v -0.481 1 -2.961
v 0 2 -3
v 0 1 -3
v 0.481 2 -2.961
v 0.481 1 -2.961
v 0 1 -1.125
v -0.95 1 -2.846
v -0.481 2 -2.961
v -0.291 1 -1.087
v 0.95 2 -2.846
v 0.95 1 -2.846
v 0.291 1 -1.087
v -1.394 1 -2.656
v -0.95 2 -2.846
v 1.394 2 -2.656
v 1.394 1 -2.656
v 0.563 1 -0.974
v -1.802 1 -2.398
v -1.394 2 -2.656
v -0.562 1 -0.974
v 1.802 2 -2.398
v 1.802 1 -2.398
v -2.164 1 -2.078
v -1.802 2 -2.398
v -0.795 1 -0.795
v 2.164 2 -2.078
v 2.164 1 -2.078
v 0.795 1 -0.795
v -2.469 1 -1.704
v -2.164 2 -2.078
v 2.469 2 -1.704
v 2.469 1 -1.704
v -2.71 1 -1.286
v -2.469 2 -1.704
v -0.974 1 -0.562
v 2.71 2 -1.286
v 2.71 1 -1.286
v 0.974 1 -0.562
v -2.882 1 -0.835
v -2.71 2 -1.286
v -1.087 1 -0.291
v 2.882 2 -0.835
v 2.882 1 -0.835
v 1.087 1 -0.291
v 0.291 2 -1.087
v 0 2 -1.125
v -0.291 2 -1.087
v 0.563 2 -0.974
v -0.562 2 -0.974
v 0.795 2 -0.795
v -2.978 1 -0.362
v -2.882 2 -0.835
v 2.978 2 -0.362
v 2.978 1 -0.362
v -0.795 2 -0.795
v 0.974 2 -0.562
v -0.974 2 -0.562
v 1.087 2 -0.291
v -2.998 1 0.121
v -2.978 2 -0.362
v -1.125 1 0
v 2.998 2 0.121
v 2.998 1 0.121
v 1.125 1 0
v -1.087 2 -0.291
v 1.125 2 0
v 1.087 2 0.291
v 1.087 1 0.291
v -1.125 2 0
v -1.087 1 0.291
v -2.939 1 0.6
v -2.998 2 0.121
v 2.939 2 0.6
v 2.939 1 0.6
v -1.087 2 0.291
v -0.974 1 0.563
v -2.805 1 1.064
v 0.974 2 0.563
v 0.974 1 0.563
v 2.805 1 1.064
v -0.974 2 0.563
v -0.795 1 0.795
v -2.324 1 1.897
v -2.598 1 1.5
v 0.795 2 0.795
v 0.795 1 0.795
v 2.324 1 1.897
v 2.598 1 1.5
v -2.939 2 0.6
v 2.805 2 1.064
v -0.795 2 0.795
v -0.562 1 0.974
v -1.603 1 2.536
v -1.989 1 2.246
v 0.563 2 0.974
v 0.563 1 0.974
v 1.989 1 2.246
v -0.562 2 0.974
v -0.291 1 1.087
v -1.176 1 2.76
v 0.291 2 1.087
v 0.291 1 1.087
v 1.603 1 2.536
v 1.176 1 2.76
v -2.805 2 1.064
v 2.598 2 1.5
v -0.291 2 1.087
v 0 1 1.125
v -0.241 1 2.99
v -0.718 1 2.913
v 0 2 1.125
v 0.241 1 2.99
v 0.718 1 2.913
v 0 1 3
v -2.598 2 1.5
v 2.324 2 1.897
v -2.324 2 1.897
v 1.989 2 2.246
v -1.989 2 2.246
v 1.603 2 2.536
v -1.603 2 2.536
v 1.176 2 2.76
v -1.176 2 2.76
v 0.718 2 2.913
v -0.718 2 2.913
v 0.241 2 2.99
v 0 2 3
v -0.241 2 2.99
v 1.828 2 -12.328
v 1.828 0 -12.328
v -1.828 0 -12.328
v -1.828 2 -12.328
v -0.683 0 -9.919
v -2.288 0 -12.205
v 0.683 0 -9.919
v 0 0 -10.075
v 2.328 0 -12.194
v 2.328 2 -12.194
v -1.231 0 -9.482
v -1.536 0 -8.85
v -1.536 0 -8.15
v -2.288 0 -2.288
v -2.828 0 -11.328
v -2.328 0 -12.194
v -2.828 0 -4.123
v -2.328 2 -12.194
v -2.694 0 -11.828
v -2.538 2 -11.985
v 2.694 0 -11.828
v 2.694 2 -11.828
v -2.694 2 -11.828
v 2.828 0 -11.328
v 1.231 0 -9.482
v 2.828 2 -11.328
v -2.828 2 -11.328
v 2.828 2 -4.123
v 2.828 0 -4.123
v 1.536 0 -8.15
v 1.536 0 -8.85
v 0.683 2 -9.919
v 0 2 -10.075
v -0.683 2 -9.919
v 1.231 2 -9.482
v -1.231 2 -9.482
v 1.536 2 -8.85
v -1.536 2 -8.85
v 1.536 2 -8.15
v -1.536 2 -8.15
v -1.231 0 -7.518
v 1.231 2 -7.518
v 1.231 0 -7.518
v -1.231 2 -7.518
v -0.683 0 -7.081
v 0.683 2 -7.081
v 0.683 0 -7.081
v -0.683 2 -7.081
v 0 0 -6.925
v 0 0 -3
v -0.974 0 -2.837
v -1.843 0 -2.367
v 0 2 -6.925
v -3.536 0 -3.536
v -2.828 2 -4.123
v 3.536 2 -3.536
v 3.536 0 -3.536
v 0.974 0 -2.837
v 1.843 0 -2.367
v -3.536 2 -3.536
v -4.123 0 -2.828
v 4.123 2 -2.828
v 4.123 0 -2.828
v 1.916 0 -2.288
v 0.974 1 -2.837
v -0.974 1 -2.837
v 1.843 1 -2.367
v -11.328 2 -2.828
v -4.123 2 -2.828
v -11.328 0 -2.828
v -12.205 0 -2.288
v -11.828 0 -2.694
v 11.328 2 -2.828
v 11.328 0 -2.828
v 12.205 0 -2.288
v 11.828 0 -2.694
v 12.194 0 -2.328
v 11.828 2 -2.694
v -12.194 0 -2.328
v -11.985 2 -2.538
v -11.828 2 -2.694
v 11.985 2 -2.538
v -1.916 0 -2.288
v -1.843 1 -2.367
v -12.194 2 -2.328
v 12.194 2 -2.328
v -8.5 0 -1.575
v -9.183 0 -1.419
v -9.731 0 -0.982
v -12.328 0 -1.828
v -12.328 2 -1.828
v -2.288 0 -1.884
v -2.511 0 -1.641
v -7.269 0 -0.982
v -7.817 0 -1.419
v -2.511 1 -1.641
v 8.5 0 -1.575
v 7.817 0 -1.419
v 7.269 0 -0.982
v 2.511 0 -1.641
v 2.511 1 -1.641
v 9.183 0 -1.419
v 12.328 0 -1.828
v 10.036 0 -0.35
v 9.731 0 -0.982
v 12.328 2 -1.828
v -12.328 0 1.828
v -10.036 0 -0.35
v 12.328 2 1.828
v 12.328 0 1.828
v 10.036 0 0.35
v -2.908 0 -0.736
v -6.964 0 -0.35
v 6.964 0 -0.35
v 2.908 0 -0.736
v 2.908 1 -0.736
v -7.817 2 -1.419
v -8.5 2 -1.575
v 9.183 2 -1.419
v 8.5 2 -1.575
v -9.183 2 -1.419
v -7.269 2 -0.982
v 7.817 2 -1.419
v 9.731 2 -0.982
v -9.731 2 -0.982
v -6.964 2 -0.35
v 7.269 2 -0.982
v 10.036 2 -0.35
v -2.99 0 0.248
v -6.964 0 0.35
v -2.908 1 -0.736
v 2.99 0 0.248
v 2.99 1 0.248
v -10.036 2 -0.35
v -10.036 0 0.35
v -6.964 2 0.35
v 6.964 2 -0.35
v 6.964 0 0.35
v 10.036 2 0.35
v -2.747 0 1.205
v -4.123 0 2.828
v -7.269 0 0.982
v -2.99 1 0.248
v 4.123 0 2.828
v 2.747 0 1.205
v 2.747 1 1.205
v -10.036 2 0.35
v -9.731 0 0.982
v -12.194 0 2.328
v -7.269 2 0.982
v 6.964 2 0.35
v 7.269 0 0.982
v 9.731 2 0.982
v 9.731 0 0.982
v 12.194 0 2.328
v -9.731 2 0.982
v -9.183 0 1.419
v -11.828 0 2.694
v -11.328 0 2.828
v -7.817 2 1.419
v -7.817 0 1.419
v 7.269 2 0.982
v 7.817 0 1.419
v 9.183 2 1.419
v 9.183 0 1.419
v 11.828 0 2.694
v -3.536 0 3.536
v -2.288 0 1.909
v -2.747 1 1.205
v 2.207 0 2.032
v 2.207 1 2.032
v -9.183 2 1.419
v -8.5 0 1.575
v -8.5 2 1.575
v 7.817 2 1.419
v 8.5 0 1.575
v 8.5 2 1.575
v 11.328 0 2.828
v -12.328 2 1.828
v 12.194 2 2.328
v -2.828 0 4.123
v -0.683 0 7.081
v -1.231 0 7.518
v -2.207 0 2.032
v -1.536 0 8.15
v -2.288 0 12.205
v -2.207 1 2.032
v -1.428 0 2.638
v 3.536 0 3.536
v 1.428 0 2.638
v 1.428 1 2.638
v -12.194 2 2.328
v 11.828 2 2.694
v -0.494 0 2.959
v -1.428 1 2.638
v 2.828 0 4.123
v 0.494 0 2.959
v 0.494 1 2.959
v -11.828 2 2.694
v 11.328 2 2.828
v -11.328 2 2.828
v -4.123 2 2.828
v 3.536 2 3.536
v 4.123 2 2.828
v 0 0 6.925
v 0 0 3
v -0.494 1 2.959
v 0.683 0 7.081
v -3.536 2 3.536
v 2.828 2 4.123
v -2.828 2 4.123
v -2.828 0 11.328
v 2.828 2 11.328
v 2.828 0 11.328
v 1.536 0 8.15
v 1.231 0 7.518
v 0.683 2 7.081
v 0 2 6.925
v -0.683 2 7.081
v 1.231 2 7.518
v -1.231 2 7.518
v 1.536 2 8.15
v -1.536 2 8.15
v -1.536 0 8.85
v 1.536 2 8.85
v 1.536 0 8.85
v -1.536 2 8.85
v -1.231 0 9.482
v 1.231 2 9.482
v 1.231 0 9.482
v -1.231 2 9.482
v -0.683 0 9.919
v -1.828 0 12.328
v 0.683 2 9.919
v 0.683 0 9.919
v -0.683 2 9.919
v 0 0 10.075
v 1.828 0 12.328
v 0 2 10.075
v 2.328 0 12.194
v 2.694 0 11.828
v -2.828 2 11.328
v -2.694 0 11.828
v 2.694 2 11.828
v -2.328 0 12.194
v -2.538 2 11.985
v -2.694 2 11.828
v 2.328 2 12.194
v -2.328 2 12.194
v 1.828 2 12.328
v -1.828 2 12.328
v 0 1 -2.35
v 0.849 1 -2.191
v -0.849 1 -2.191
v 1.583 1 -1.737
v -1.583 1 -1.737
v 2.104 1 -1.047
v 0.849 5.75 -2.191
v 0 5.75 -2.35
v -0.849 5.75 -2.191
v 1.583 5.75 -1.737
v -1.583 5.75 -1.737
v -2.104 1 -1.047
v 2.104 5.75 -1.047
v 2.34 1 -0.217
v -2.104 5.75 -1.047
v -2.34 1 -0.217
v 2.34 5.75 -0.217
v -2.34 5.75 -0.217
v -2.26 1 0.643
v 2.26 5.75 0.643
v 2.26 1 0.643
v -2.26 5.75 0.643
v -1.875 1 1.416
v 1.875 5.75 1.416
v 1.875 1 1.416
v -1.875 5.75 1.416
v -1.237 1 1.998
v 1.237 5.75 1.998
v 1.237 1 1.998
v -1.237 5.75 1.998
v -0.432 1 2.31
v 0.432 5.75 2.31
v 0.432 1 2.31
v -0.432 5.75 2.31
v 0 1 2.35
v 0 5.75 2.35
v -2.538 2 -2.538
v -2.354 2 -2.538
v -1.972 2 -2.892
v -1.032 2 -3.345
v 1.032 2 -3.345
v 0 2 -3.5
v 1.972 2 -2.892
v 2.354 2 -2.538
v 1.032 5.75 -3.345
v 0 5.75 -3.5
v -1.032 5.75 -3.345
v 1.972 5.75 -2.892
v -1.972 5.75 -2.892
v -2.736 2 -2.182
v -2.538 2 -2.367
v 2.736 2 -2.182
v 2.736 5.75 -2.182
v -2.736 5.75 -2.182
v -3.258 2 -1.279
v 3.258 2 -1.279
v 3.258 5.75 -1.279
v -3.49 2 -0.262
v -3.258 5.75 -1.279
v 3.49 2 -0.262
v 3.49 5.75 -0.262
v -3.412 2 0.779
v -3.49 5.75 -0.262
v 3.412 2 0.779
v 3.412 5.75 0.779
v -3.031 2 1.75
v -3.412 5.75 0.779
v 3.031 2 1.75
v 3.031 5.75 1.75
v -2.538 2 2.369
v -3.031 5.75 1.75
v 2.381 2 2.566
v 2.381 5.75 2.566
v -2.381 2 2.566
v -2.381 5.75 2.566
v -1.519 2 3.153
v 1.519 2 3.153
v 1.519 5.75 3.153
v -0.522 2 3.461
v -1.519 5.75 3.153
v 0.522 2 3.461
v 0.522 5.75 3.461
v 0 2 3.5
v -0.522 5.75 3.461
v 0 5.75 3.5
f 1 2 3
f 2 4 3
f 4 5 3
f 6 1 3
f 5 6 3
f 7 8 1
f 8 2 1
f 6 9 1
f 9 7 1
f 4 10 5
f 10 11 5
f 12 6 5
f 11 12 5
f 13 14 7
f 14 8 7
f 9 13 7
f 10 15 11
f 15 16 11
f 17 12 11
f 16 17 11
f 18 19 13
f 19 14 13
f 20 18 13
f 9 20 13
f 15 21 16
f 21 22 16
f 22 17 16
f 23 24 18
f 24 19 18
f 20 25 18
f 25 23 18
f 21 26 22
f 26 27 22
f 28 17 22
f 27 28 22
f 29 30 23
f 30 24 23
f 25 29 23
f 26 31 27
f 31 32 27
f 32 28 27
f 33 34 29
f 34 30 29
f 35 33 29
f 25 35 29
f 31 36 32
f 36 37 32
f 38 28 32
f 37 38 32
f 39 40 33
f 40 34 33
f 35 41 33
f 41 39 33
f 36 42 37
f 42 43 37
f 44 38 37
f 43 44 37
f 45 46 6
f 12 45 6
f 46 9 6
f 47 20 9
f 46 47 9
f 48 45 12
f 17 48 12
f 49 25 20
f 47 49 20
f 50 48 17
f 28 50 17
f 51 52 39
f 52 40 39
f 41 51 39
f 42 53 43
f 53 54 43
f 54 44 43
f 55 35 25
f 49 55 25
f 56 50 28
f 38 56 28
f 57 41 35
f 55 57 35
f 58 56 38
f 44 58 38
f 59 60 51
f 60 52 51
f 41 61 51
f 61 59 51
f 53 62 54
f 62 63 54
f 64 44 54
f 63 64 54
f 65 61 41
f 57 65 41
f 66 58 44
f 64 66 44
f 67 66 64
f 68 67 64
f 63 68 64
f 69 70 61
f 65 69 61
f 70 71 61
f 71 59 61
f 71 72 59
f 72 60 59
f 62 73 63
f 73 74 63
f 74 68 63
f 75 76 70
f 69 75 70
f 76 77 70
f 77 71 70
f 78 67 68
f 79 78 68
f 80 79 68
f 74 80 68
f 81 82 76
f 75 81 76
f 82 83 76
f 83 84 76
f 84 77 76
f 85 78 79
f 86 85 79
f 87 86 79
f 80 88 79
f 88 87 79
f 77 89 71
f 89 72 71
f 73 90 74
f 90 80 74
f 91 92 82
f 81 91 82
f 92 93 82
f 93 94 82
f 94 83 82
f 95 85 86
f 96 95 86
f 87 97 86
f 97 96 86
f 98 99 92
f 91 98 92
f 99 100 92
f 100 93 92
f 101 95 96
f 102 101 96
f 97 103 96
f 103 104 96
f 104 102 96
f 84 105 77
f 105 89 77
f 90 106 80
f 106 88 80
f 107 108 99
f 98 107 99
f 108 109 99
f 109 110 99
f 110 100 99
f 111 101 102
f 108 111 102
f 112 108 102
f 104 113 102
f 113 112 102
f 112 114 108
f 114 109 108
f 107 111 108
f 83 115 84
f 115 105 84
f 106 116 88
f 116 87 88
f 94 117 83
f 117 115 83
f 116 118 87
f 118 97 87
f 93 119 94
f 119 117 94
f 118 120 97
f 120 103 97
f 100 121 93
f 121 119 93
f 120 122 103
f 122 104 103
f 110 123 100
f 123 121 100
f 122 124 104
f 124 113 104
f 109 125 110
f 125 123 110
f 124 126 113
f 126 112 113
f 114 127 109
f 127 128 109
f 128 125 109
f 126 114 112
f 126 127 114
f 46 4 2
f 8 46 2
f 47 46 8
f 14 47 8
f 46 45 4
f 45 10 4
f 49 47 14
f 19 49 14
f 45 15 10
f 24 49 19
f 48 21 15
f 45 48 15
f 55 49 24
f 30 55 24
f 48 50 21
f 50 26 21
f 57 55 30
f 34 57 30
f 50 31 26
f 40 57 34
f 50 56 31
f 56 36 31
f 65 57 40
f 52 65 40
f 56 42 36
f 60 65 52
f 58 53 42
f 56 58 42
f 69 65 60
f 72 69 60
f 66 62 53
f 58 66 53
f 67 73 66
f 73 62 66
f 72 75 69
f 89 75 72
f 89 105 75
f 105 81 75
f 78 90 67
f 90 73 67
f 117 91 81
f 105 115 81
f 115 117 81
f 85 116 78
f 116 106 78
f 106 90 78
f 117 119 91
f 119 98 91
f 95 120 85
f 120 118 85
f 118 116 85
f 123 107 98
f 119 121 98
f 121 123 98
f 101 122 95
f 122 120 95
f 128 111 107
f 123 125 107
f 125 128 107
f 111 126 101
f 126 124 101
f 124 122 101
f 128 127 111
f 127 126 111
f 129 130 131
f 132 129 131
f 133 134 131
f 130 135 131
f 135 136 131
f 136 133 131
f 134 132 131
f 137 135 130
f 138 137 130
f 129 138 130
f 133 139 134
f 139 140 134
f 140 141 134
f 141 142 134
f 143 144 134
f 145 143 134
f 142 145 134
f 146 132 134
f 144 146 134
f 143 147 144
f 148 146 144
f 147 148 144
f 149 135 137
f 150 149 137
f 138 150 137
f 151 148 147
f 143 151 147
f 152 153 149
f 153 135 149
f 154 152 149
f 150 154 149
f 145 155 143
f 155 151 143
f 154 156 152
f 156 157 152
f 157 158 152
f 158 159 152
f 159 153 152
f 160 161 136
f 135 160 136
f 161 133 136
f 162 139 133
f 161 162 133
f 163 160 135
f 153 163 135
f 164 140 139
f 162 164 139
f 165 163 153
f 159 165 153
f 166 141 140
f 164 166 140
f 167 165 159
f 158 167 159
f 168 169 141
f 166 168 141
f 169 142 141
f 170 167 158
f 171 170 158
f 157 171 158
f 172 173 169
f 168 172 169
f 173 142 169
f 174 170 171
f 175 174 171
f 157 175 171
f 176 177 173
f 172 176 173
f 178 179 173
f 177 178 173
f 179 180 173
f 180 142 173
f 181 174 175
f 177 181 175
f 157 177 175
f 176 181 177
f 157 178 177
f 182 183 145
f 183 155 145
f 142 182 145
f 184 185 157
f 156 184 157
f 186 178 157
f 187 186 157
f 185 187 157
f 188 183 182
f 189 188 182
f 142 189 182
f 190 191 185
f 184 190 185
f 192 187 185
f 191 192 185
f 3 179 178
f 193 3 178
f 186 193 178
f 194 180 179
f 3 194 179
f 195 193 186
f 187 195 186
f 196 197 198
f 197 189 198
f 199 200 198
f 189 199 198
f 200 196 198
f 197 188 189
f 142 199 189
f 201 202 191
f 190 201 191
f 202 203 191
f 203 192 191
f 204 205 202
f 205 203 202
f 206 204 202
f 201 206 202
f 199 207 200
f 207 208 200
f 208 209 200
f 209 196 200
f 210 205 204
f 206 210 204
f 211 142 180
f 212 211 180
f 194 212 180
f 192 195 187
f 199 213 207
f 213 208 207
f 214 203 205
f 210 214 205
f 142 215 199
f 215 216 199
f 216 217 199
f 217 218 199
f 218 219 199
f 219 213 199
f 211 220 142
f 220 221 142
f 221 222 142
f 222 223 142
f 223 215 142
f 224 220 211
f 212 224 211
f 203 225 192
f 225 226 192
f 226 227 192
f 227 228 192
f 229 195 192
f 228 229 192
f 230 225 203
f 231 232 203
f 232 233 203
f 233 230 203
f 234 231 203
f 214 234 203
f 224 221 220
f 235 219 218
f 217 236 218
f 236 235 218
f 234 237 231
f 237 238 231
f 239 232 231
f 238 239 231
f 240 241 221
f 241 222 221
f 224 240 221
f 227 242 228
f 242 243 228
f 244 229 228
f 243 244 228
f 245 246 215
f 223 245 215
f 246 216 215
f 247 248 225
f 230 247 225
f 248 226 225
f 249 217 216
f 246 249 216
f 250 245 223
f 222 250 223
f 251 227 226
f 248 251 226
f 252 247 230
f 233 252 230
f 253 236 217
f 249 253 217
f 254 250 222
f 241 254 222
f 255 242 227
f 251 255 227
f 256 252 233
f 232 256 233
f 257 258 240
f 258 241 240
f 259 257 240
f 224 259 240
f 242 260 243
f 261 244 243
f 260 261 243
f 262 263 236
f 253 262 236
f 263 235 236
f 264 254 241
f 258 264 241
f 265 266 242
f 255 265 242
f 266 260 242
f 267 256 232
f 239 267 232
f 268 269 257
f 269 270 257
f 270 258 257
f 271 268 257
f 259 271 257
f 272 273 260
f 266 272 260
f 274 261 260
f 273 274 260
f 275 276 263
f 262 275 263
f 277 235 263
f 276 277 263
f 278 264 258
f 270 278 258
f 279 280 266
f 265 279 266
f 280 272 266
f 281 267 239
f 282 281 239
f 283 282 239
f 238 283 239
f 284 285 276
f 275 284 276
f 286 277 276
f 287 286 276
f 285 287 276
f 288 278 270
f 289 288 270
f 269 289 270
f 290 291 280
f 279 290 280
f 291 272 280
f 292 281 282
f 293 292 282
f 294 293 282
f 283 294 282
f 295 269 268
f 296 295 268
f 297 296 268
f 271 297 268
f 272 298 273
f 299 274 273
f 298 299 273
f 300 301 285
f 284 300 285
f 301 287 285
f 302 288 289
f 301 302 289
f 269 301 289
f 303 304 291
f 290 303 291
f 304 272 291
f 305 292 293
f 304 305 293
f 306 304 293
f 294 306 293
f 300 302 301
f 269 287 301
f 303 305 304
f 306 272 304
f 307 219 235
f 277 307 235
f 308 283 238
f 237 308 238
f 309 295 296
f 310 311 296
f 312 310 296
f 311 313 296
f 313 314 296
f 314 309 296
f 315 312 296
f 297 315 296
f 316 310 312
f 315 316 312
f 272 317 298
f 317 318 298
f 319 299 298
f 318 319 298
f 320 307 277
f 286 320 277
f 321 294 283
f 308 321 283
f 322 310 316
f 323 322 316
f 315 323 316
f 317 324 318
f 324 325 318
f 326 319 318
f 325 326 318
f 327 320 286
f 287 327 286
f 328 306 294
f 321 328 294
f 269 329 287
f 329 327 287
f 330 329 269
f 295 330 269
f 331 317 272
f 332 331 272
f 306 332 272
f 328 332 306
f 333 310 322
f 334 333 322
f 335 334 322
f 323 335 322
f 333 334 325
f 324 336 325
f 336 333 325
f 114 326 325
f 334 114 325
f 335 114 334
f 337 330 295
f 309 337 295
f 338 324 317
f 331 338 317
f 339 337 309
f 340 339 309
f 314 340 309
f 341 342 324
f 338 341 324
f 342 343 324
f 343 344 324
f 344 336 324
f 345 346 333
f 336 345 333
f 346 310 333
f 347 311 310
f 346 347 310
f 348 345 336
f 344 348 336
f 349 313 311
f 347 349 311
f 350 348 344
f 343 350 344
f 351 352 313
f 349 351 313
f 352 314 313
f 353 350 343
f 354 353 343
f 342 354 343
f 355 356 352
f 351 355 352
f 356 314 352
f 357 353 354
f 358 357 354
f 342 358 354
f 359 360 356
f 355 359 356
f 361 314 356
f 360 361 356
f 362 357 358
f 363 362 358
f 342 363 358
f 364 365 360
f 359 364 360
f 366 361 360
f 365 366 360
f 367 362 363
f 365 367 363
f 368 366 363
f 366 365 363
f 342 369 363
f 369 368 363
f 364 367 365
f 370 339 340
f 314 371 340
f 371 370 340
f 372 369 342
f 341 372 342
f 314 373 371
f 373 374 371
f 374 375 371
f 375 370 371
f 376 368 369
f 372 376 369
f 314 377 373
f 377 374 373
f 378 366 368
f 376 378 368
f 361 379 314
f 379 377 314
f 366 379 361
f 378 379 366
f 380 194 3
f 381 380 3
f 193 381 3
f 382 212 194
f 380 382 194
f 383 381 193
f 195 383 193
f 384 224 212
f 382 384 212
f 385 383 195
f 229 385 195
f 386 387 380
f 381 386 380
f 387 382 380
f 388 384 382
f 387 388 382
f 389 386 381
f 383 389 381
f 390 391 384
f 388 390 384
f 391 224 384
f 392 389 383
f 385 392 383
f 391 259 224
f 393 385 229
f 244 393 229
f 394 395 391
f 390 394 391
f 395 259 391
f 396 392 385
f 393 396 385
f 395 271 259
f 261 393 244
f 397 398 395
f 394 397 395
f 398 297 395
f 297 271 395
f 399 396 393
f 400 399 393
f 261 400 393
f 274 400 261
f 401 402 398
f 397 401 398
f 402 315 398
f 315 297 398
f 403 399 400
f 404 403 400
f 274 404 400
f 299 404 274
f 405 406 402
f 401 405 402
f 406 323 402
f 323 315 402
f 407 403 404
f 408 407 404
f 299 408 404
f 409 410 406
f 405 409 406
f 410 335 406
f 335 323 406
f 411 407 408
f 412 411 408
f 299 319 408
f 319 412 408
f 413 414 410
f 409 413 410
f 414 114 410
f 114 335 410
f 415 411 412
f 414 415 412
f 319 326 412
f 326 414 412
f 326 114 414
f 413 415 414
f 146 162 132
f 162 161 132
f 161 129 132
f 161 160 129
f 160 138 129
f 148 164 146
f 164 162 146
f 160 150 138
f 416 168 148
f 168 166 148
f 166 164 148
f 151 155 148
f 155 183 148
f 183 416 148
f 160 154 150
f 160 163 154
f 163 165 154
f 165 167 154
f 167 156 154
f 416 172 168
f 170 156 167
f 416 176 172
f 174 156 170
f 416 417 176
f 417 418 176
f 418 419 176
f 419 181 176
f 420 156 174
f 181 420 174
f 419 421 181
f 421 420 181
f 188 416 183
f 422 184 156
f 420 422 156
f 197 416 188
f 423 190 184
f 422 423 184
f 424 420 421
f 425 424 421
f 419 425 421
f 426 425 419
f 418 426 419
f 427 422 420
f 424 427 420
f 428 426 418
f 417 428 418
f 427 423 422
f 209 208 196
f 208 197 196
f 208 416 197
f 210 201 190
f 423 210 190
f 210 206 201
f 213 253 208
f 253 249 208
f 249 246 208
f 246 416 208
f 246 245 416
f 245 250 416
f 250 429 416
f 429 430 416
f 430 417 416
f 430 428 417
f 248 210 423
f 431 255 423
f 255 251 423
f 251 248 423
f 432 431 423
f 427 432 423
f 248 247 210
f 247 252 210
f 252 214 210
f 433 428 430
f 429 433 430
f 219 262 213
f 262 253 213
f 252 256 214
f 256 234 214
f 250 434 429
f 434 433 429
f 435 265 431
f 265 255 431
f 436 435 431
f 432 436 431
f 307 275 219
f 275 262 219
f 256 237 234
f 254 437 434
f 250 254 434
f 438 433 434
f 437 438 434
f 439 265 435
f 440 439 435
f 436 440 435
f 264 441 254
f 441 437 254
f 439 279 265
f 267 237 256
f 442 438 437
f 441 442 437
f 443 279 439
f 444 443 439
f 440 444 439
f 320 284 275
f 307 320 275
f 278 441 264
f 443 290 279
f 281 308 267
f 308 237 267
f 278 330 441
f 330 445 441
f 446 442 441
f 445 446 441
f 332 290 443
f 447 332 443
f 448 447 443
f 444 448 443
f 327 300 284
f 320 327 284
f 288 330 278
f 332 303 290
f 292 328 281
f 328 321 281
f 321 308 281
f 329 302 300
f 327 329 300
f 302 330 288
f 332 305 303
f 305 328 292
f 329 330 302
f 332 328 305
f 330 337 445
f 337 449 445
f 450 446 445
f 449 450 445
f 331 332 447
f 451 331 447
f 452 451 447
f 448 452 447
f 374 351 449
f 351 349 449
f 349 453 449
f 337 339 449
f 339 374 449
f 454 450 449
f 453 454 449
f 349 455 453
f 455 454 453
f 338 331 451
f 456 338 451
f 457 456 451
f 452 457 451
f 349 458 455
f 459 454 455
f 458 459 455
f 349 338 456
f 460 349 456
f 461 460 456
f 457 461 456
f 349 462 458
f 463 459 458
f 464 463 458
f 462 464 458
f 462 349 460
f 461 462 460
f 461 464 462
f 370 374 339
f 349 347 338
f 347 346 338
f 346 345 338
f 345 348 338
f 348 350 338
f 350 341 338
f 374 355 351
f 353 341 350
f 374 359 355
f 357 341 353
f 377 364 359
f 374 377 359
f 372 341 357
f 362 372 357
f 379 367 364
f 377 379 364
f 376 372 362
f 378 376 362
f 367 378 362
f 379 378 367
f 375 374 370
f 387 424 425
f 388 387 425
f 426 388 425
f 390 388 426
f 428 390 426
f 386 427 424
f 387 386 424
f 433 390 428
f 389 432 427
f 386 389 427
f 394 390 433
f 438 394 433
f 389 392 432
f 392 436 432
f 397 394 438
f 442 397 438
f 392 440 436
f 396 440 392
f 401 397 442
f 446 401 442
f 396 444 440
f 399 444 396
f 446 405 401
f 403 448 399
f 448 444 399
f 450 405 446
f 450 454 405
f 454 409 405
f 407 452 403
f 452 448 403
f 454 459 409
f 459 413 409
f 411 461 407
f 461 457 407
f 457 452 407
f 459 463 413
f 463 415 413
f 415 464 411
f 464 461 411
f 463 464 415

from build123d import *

# Parameters (mm, degrees)
SKETCH1_R             = 1.575
SKETCH1_R_2           = 3.5
BOSS_EXTRUDE1_DEPTH   = 2
SKETCH1_R_3           = 3
SKETCH1_R_4           = 1.125
BOSS_EXTRUDE1_2_DEPTH = 2
SKETCH1_3_R           = 3.5
SKETCH1_3_R_2         = 2.35
BOSS_EXTRUDE2_DEPTH   = 5.75
FILLET1_R             = 1
CUT_EXTRUDE1_DEPTH    = 1


with BuildPart() as part:
    # Sketch1 → Boss-Extrude1 (new body)
    with BuildSketch(Plane(origin=(0, 0, 0), x_dir=(1, 0, 0), z_dir=(0, 1, 0))):
        with BuildLine():
            ThreePointArc((-2.828427125, 4.123105626), (-3.535533906, 3.535533906), (-4.123105626, 2.828427125))
            Line((-4.123105626, 2.828427125), (-12.328427125, 2.828427125))
            Line((-12.328427125, 2.828427125), (-12.328427125, -2.828427125))
            Line((-12.328427125, -2.828427125), (-4.123105626, -2.828427125))
            ThreePointArc((-4.123105626, -2.828427125), (-3.535533906, -3.535533906), (-2.828427125, -4.123105626))
            Line((-2.828427125, -4.123105626), (-2.828427125, -12.328427125))
            Line((-2.828427125, -12.328427125), (2.828427125, -12.328427125))
            Line((2.828427125, -12.328427125), (2.828427125, -4.123105626))
            ThreePointArc((2.828427125, -4.123105626), (3.535533906, -3.535533906), (4.123105626, -2.828427125))
            Line((4.123105626, -2.828427125), (12.328427125, -2.828427125))
            Line((12.328427125, -2.828427125), (12.328427125, 2.828427125))
            Line((12.328427125, 2.828427125), (4.123105626, 2.828427125))
            ThreePointArc((4.123105626, 2.828427125), (3.535533906, 3.535533906), (2.828427125, 4.123105626))
            Line((2.828427125, 4.123105626), (2.828427125, 12.328427125))
            Line((2.828427125, 12.328427125), (-2.828427125, 12.328427125))
            Line((-2.828427125, 12.328427125), (-2.828427125, 4.123105626))
        make_face()
        with Locations(Location((0, -8.5, 0), (0, 0, 270))):
            Circle(SKETCH1_R, mode=Mode.SUBTRACT)
        with Locations(Location((0, 0, 0), (0, 0, 270))):
            Circle(SKETCH1_R_2, mode=Mode.SUBTRACT)
        with Locations(Location((0, 8.5, 0), (0, 0, 270))):
            Circle(SKETCH1_R, mode=Mode.SUBTRACT)
        with Locations(Location((8.5, 0, 0), (0, 0, 270))):
            Circle(SKETCH1_R, mode=Mode.SUBTRACT)
        with Locations(Location((-8.5, 0, 0), (0, 0, 270))):
            Circle(SKETCH1_R, mode=Mode.SUBTRACT)
    extrude(amount=BOSS_EXTRUDE1_DEPTH)

    # Sketch1<3> → Boss-Extrude2 (add)
    with BuildSketch(Plane(origin=(0, 0, 0), x_dir=(1, 0, 0), z_dir=(0, 1, 0))):
        with Locations(Location((0, 0, 0), (0, 0, 270))):
            Circle(SKETCH1_3_R)
        with Locations(Location((0, 0, 0), (0, 0, 270))):
            Circle(SKETCH1_3_R_2, mode=Mode.SUBTRACT)
    extrude(amount=BOSS_EXTRUDE2_DEPTH)

    # Fillet1
    fillet1_edges = [part.edges().sort_by_distance(p)[0] for p in [
        (-2.828427125, 1, -12.328427125),
        (2.828427125, 1, -12.328427125),
        (12.328427125, 1, -2.828427125),
        (12.328427125, 1, 2.828427125),
        (2.828427125, 1, 12.328427125),
        (-2.828427125, 1, 12.328427125),
        (-12.328427125, 1, 2.828427125),
        (-12.328427125, 1, -2.828427125),
    ]]
    fillet(fillet1_edges, radius=FILLET1_R)


with BuildPart() as body_2:
    # Sketch1 → Boss-Extrude1 2 (new body)
    with BuildSketch(Plane(origin=(0, 0, 0), x_dir=(1, 0, 0), z_dir=(0, 1, 0))):
        with Locations(Location((0, 0, 0), (0, 0, 270))):
            Circle(SKETCH1_R_3)
        with Locations(Location((0, 0, 0), (0, 0, 270))):
            Circle(SKETCH1_R_4, mode=Mode.SUBTRACT)
    extrude(amount=BOSS_EXTRUDE1_2_DEPTH)


with BuildPart() as cut_extrude1_tool:
    # Sketch1<4> → Cut-Extrude1 (new body)
    with BuildSketch(Plane(origin=(0, 0, 0), x_dir=(1, 0, 0), z_dir=(0, 1, 0))):
        with BuildLine():
            Line((1.661700936, 1.661700936), (2.121320344, 2.121320344))
            ThreePointArc((2.121320344, 2.121320344), (1.148050297, 2.771638598), (0, 3))
            Line((0, 3), (0, 2.35))
            ThreePointArc((0, 2.35), (0.899306066, 2.171116901), (1.661700936, 1.661700936))
        make_face()
        with BuildLine():
            ThreePointArc((3, 0), (2.771638598, 1.148050297), (2.121320344, 2.121320344))
            Line((2.121320344, 2.121320344), (1.661700936, 1.661700936))
            ThreePointArc((1.661700936, 1.661700936), (2.171116901, 0.899306066), (2.35, 0))
            ThreePointArc((2.35, 0), (2.171116901, -0.899306066), (1.661700936, -1.661700936))
            Line((1.661700936, -1.661700936), (2.121320344, -2.121320344))
            ThreePointArc((2.121320344, -2.121320344), (2.771638598, -1.148050297), (3, 0))
        make_face()
        with BuildLine():
            ThreePointArc((-2.121320344, -2.121320344), (0, -3), (2.121320344, -2.121320344))
            Line((2.121320344, -2.121320344), (1.661700936, -1.661700936))
            ThreePointArc((1.661700936, -1.661700936), (0, -2.35), (-1.661700936, -1.661700936))
            Line((-1.661700936, -1.661700936), (-2.121320344, -2.121320344))
        make_face()
        with BuildLine():
            Line((-1.661700936, 1.661700936), (-2.121320344, 2.121320344))
            ThreePointArc((-2.121320344, 2.121320344), (-3, 0), (-2.121320344, -2.121320344))
            Line((-2.121320344, -2.121320344), (-1.661700936, -1.661700936))
            ThreePointArc((-1.661700936, -1.661700936), (-2.35, 0), (-1.661700936, 1.661700936))
        make_face()
        with BuildLine():
            ThreePointArc((2.35, 0), (2.171116901, 0.899306066), (1.661700936, 1.661700936))
            Line((1.661700936, 1.661700936), (0.795495129, 0.795495129))
            ThreePointArc((0.795495129, 0.795495129), (1.039364474, 0.430518861), (1.125, 0))
            ThreePointArc((1.125, 0), (1.039364474, -0.430518861), (0.795495129, -0.795495129))
            Line((0.795495129, -0.795495129), (1.661700936, -1.661700936))
            ThreePointArc((1.661700936, -1.661700936), (2.171116901, -0.899306066), (2.35, 0))
        make_face()
        with BuildLine():
            ThreePointArc((-1.661700936, -1.661700936), (0, -2.35), (1.661700936, -1.661700936))
            Line((1.661700936, -1.661700936), (0.795495129, -0.795495129))
            ThreePointArc((0.795495129, -0.795495129), (0, -1.125), (-0.795495129, -0.795495129))
            Line((-0.795495129, -0.795495129), (-1.661700936, -1.661700936))
        make_face()
        with BuildLine():
            Line((-0.795495129, 0.795495129), (-1.661700936, 1.661700936))
            ThreePointArc((-1.661700936, 1.661700936), (-2.35, 0), (-1.661700936, -1.661700936))
            Line((-1.661700936, -1.661700936), (-0.795495129, -0.795495129))
            ThreePointArc((-0.795495129, -0.795495129), (-1.125, 0), (-0.795495129, 0.795495129))
        make_face()
        with BuildLine():
            Line((0.795495129, 0.795495129), (1.661700936, 1.661700936))
            ThreePointArc((1.661700936, 1.661700936), (0.899306066, 2.171116901), (0, 2.35))
            Line((0, 2.35), (0, 1.125))
            ThreePointArc((0, 1.125), (0.430518861, 1.039364474), (0.795495129, 0.795495129))
        make_face()
        with BuildLine():
            Line((0, 1.125), (0, 2.35))
            ThreePointArc((0, 2.35), (-0.899306066, 2.171116901), (-1.661700936, 1.661700936))
            Line((-1.661700936, 1.661700936), (-0.795495129, 0.795495129))
            ThreePointArc((-0.795495129, 0.795495129), (-0.430518861, 1.039364474), (0, 1.125))
        make_face()
        with BuildLine():
            Line((0, 2.35), (0, 3))
            ThreePointArc((0, 3), (-1.148050297, 2.771638598), (-2.121320344, 2.121320344))
            Line((-2.121320344, 2.121320344), (-1.661700936, 1.661700936))
            ThreePointArc((-1.661700936, 1.661700936), (-0.899306066, 2.171116901), (0, 2.35))
        make_face()
    extrude(amount=CUT_EXTRUDE1_DEPTH)


with BuildPart() as part_1:
    add(part.part)

    # Cut-Extrude1: cut by cut_extrude1_tool
    add(cut_extrude1_tool.part, mode=Mode.SUBTRACT)


with BuildPart() as body_2_1:
    add(body_2.part)

    # Cut-Extrude1: cut by cut_extrude1_tool
    add(cut_extrude1_tool.part, mode=Mode.SUBTRACT)


solid = Compound([part_1.part, body_2_1.part])
